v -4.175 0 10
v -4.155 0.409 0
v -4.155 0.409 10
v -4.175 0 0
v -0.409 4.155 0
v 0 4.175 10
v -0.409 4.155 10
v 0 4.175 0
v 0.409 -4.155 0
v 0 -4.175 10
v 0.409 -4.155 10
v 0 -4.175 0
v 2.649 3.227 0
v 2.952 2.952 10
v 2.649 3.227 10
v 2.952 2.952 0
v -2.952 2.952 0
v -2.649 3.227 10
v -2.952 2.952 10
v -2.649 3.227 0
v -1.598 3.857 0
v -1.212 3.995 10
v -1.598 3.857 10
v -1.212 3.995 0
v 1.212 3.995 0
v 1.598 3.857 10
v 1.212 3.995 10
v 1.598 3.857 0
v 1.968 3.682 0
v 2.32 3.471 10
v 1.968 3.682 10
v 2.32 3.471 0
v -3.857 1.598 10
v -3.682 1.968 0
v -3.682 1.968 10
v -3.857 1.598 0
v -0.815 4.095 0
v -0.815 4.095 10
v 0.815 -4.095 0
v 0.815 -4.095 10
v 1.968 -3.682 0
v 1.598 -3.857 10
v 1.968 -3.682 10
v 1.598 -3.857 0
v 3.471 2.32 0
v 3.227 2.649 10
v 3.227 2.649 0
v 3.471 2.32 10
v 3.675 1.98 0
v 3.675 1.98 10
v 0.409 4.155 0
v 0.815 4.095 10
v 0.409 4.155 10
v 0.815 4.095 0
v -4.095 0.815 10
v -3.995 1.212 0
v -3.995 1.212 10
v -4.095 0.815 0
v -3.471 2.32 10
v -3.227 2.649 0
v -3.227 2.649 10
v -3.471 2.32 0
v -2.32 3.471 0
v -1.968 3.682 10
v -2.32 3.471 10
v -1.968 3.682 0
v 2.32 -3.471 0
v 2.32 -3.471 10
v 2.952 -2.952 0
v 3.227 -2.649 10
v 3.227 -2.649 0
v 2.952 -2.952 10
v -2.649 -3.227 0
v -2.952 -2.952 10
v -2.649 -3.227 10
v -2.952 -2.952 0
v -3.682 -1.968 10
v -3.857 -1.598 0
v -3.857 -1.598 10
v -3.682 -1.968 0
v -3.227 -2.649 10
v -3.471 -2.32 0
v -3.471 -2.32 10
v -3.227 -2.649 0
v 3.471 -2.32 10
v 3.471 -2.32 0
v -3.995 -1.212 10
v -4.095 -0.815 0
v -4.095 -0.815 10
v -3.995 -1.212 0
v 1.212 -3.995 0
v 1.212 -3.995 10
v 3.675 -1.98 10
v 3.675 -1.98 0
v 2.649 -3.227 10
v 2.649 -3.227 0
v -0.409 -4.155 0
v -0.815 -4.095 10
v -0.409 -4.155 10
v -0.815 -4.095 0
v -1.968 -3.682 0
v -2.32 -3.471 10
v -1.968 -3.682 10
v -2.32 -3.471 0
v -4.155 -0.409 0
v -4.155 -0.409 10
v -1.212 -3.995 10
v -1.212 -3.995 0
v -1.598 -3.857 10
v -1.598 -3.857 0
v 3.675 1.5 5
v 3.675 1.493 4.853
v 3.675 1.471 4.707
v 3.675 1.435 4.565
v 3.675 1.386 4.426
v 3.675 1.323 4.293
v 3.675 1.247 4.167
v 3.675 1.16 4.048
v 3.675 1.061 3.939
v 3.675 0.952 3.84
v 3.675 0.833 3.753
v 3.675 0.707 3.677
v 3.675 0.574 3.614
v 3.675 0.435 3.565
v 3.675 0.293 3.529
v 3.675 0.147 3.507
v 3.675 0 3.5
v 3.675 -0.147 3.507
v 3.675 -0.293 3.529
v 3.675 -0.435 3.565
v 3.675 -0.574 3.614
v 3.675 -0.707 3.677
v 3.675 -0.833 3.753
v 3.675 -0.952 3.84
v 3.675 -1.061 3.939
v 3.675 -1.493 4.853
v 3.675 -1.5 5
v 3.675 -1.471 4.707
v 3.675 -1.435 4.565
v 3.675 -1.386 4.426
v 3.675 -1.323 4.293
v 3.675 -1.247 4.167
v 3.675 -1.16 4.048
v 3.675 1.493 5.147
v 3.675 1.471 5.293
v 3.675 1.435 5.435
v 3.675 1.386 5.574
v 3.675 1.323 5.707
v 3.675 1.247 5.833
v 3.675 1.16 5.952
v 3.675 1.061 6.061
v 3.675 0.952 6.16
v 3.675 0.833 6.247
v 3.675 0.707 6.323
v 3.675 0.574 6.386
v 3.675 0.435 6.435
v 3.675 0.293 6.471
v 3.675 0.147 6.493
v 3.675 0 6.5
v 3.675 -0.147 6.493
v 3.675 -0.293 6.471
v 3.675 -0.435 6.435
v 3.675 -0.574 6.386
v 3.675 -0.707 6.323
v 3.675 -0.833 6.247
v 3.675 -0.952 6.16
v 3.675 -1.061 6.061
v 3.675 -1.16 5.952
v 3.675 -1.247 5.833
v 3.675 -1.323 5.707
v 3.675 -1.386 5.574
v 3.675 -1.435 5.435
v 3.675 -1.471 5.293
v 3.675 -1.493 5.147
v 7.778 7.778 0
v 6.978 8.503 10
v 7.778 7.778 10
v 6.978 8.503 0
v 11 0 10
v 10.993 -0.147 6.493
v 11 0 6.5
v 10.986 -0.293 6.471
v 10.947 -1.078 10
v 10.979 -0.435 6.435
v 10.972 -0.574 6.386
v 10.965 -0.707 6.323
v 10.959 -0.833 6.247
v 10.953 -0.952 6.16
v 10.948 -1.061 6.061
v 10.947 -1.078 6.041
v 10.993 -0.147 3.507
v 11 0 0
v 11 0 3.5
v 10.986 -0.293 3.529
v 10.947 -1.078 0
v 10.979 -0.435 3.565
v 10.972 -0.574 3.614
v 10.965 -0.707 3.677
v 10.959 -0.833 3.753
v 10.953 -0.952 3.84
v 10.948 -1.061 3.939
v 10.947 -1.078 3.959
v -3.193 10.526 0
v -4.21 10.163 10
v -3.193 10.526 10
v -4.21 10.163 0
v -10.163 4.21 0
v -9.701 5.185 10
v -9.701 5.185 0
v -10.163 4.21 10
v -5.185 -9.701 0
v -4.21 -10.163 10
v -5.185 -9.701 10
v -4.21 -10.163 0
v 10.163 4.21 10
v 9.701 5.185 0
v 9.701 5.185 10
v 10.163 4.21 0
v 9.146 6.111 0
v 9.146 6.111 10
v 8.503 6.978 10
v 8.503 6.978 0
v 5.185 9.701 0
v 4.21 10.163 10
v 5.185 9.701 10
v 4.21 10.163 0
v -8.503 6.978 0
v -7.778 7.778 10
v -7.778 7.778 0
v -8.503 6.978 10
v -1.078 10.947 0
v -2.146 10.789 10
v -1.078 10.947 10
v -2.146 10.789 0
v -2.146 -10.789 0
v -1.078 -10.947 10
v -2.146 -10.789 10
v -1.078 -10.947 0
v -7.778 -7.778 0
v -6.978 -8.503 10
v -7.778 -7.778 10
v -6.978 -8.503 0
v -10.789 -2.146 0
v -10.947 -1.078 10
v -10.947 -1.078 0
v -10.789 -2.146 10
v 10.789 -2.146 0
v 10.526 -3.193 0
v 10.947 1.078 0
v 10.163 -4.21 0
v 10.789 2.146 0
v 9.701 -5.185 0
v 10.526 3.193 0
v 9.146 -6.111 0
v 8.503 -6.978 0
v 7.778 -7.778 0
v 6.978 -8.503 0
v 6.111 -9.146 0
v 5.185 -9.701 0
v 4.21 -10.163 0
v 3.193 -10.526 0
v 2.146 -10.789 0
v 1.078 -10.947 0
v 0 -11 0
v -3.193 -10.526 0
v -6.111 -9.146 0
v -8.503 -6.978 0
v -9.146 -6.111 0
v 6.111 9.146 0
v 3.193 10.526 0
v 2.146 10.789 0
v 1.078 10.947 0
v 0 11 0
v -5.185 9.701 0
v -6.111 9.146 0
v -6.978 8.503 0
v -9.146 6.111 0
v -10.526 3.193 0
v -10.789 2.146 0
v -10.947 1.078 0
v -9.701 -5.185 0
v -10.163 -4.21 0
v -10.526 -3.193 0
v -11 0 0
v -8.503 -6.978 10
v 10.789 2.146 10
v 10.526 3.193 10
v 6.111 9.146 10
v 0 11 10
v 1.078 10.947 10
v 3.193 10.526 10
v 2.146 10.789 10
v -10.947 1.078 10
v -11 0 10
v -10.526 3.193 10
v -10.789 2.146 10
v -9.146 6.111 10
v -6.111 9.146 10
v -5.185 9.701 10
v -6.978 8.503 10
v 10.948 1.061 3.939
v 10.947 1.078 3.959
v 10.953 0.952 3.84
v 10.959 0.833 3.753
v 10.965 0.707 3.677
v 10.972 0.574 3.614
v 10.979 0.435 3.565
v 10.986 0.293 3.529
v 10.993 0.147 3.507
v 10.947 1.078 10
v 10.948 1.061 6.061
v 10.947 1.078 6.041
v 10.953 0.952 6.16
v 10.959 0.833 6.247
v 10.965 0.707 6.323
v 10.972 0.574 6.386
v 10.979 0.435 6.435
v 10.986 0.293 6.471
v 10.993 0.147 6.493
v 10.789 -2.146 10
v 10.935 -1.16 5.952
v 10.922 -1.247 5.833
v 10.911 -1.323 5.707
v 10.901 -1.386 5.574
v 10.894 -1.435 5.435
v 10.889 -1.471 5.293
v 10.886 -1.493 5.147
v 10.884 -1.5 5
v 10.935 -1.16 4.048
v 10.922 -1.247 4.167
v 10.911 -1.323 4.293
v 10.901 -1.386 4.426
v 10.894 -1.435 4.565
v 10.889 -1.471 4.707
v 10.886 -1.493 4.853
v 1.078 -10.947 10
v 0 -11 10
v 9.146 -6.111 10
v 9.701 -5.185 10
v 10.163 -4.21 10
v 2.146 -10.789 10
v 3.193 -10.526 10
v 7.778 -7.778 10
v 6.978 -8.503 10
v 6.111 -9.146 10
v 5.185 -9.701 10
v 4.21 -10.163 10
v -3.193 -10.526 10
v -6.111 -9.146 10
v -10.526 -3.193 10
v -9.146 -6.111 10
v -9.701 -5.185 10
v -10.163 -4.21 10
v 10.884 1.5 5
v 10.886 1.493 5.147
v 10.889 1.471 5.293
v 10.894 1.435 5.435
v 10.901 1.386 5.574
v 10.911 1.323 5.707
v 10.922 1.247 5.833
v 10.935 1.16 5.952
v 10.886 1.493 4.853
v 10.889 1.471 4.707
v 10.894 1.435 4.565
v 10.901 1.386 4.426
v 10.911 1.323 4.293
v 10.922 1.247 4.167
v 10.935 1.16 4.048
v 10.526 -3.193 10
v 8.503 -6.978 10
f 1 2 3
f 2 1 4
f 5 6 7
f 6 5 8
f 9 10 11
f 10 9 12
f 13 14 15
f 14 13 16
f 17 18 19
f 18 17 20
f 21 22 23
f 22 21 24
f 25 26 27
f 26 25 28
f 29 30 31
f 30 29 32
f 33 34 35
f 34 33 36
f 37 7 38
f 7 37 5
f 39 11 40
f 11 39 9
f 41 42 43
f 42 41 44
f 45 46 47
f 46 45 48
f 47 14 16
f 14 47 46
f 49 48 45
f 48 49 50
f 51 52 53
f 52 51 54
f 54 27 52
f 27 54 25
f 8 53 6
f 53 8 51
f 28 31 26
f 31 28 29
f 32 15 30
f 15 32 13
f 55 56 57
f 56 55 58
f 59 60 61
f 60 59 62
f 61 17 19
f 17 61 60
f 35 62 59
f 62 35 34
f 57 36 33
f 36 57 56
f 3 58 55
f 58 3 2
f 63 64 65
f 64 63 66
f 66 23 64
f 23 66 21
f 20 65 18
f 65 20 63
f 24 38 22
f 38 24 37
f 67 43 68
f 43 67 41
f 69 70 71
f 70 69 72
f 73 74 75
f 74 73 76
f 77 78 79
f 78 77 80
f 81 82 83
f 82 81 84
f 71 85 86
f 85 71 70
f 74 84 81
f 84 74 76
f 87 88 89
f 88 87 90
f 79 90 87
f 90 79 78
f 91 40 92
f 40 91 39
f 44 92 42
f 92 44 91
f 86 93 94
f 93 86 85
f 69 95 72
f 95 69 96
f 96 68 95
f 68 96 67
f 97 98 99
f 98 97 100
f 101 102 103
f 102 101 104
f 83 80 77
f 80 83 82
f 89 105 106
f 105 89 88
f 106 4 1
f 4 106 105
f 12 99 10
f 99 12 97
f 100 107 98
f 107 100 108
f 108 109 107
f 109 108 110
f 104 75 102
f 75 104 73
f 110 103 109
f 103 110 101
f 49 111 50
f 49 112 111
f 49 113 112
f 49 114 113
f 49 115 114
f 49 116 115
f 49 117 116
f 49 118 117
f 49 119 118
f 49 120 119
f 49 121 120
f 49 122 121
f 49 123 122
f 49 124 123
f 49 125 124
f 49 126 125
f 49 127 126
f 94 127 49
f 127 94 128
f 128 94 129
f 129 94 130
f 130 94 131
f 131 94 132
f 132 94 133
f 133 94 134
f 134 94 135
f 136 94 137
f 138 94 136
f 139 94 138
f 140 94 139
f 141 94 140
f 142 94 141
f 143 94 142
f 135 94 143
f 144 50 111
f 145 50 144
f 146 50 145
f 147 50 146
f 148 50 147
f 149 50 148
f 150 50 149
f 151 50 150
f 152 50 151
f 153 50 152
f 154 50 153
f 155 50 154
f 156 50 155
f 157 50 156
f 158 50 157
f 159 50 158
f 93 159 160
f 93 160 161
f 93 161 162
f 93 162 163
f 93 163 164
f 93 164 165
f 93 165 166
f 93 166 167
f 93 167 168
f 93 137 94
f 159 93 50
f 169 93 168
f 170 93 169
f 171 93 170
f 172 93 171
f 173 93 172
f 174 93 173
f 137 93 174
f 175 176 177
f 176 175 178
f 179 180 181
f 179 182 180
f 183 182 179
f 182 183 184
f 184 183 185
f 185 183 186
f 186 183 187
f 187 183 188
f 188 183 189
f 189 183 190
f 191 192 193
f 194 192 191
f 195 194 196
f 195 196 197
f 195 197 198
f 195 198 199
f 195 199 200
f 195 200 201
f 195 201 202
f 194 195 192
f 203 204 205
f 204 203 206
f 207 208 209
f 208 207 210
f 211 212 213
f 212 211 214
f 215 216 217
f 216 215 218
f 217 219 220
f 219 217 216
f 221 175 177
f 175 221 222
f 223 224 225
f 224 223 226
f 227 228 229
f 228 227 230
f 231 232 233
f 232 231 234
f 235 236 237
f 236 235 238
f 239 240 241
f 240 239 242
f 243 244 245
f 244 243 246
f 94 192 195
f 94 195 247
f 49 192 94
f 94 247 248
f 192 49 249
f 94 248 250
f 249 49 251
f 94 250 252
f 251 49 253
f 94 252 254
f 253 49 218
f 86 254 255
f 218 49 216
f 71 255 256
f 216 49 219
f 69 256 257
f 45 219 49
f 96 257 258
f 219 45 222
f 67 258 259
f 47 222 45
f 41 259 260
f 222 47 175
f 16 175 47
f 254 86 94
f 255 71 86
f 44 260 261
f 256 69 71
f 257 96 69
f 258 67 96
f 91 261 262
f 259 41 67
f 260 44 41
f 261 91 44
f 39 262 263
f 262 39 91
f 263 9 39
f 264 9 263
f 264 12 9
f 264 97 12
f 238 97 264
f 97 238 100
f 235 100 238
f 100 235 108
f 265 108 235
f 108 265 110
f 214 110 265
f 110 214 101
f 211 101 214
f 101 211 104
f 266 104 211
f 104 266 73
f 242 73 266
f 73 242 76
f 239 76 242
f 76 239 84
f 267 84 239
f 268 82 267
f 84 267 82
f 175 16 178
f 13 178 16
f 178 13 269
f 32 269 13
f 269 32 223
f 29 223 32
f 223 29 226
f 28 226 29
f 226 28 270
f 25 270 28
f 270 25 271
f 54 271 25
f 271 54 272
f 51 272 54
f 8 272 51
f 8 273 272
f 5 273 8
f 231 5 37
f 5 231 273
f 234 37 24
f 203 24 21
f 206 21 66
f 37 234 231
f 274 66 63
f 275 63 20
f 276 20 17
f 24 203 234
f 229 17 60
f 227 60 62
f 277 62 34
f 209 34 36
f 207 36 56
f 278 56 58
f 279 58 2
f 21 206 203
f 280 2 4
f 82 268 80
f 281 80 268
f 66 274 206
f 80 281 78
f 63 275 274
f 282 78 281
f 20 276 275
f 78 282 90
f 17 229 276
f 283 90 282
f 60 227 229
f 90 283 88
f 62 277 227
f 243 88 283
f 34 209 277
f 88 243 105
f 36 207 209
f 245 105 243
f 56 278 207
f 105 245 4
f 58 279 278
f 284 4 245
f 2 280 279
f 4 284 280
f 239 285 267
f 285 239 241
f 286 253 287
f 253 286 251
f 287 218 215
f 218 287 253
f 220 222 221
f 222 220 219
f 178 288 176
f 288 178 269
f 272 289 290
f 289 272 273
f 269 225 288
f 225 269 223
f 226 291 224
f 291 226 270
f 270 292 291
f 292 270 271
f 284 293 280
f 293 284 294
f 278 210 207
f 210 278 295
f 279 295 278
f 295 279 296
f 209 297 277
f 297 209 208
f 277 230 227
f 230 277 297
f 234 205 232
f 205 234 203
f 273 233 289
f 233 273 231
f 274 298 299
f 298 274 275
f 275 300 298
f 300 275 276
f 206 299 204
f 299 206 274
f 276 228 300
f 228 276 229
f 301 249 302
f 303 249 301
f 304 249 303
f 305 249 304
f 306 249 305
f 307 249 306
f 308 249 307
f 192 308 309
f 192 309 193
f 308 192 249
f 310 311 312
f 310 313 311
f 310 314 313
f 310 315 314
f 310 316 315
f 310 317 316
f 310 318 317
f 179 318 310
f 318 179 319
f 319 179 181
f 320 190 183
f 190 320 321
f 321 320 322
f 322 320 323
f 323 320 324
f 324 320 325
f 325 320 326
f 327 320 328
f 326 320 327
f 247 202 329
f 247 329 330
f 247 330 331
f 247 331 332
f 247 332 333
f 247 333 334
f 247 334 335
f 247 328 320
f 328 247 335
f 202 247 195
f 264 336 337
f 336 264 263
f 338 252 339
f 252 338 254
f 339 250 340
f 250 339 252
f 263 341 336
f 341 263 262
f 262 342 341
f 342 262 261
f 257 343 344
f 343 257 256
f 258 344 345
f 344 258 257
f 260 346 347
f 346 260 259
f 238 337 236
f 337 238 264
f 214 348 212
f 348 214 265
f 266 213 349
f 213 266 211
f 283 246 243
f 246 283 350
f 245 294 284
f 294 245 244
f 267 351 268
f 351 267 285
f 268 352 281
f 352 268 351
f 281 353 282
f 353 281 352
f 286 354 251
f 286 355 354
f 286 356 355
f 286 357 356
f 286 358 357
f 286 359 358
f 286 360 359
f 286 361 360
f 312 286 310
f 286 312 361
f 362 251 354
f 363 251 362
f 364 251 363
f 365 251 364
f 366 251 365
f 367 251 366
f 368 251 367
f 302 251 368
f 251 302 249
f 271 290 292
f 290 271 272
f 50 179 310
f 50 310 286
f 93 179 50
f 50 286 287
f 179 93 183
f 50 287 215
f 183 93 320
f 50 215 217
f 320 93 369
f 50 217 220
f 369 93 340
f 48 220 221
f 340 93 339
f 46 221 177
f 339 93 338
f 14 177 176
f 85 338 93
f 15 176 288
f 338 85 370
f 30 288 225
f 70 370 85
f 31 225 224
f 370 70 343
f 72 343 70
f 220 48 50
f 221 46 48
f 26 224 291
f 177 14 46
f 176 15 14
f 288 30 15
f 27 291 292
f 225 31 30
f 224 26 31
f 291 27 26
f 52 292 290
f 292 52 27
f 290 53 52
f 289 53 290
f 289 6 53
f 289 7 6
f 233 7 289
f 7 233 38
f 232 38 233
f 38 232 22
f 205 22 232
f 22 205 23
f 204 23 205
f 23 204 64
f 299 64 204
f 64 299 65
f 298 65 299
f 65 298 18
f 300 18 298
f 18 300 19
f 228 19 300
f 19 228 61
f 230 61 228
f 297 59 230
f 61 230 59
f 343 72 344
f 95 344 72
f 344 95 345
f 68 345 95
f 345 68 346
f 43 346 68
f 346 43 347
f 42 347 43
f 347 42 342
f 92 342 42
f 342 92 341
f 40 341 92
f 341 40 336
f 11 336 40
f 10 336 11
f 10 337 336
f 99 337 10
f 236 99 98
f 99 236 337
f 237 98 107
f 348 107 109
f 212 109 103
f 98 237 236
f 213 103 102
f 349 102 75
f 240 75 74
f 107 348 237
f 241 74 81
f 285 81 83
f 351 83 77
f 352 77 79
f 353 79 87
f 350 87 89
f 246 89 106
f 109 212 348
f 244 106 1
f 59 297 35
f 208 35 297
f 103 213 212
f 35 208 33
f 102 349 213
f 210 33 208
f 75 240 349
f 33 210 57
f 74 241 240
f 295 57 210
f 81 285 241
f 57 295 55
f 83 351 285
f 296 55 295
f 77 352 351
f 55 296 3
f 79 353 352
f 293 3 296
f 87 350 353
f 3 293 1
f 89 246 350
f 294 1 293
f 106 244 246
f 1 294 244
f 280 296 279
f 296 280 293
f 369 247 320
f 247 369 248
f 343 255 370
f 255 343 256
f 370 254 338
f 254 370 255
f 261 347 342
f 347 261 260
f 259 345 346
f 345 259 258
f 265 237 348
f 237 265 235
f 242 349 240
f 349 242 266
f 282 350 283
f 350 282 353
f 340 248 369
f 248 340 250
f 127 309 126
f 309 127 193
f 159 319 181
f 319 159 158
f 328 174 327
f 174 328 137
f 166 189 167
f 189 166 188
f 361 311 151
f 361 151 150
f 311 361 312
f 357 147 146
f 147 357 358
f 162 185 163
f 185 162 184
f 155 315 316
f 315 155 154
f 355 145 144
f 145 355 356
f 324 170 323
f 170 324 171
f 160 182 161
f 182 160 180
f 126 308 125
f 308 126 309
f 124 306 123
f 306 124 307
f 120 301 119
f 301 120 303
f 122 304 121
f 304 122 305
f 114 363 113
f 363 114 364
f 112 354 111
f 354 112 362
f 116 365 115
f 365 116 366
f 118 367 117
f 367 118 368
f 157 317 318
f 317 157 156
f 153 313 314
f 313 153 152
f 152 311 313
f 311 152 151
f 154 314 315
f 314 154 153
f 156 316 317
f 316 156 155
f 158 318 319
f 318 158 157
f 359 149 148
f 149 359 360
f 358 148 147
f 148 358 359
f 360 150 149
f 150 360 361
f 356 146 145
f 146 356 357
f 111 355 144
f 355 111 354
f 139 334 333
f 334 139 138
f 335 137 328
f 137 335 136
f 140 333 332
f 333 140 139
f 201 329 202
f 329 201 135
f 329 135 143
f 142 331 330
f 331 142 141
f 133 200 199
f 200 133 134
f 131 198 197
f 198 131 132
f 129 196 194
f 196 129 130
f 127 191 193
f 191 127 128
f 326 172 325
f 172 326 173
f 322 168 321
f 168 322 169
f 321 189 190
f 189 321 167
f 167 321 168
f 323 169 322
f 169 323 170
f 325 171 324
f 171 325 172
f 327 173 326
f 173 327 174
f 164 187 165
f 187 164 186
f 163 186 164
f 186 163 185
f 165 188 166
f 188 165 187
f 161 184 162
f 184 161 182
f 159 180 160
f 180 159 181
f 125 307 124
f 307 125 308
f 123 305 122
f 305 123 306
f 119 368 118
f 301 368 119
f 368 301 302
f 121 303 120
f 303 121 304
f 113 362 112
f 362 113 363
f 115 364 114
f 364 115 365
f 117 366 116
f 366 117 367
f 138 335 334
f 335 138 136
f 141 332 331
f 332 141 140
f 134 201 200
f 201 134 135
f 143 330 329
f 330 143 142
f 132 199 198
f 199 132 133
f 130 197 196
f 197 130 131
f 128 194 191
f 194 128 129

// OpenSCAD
// Gen-DG — shaft collar with D-flat bore (set screw bears on the flat); print x4
include <parameters.scad>;
$fn = 64;
// D-flat keyed bore: flat faces +X (angle 0 = magnet pocket 0 = index notch)
module dflat_bore(h) {
    intersection() {
        cylinder(d=shaft_bore, h=h);
        translate([-shaft_bore, -shaft_bore, 0]) cube([shaft_bore + dflat_x, 2*shaft_bore, h]);
    }
}

od = 22; h = collar_h; set_d = 3.0;
difference() {
    cylinder(d=od, h=h);
    translate([0, 0, -0.1]) dflat_bore(h + 0.2);
    translate([0, 0, h/2]) rotate([0, 90, 0]) cylinder(d=set_d, h=od);
}
